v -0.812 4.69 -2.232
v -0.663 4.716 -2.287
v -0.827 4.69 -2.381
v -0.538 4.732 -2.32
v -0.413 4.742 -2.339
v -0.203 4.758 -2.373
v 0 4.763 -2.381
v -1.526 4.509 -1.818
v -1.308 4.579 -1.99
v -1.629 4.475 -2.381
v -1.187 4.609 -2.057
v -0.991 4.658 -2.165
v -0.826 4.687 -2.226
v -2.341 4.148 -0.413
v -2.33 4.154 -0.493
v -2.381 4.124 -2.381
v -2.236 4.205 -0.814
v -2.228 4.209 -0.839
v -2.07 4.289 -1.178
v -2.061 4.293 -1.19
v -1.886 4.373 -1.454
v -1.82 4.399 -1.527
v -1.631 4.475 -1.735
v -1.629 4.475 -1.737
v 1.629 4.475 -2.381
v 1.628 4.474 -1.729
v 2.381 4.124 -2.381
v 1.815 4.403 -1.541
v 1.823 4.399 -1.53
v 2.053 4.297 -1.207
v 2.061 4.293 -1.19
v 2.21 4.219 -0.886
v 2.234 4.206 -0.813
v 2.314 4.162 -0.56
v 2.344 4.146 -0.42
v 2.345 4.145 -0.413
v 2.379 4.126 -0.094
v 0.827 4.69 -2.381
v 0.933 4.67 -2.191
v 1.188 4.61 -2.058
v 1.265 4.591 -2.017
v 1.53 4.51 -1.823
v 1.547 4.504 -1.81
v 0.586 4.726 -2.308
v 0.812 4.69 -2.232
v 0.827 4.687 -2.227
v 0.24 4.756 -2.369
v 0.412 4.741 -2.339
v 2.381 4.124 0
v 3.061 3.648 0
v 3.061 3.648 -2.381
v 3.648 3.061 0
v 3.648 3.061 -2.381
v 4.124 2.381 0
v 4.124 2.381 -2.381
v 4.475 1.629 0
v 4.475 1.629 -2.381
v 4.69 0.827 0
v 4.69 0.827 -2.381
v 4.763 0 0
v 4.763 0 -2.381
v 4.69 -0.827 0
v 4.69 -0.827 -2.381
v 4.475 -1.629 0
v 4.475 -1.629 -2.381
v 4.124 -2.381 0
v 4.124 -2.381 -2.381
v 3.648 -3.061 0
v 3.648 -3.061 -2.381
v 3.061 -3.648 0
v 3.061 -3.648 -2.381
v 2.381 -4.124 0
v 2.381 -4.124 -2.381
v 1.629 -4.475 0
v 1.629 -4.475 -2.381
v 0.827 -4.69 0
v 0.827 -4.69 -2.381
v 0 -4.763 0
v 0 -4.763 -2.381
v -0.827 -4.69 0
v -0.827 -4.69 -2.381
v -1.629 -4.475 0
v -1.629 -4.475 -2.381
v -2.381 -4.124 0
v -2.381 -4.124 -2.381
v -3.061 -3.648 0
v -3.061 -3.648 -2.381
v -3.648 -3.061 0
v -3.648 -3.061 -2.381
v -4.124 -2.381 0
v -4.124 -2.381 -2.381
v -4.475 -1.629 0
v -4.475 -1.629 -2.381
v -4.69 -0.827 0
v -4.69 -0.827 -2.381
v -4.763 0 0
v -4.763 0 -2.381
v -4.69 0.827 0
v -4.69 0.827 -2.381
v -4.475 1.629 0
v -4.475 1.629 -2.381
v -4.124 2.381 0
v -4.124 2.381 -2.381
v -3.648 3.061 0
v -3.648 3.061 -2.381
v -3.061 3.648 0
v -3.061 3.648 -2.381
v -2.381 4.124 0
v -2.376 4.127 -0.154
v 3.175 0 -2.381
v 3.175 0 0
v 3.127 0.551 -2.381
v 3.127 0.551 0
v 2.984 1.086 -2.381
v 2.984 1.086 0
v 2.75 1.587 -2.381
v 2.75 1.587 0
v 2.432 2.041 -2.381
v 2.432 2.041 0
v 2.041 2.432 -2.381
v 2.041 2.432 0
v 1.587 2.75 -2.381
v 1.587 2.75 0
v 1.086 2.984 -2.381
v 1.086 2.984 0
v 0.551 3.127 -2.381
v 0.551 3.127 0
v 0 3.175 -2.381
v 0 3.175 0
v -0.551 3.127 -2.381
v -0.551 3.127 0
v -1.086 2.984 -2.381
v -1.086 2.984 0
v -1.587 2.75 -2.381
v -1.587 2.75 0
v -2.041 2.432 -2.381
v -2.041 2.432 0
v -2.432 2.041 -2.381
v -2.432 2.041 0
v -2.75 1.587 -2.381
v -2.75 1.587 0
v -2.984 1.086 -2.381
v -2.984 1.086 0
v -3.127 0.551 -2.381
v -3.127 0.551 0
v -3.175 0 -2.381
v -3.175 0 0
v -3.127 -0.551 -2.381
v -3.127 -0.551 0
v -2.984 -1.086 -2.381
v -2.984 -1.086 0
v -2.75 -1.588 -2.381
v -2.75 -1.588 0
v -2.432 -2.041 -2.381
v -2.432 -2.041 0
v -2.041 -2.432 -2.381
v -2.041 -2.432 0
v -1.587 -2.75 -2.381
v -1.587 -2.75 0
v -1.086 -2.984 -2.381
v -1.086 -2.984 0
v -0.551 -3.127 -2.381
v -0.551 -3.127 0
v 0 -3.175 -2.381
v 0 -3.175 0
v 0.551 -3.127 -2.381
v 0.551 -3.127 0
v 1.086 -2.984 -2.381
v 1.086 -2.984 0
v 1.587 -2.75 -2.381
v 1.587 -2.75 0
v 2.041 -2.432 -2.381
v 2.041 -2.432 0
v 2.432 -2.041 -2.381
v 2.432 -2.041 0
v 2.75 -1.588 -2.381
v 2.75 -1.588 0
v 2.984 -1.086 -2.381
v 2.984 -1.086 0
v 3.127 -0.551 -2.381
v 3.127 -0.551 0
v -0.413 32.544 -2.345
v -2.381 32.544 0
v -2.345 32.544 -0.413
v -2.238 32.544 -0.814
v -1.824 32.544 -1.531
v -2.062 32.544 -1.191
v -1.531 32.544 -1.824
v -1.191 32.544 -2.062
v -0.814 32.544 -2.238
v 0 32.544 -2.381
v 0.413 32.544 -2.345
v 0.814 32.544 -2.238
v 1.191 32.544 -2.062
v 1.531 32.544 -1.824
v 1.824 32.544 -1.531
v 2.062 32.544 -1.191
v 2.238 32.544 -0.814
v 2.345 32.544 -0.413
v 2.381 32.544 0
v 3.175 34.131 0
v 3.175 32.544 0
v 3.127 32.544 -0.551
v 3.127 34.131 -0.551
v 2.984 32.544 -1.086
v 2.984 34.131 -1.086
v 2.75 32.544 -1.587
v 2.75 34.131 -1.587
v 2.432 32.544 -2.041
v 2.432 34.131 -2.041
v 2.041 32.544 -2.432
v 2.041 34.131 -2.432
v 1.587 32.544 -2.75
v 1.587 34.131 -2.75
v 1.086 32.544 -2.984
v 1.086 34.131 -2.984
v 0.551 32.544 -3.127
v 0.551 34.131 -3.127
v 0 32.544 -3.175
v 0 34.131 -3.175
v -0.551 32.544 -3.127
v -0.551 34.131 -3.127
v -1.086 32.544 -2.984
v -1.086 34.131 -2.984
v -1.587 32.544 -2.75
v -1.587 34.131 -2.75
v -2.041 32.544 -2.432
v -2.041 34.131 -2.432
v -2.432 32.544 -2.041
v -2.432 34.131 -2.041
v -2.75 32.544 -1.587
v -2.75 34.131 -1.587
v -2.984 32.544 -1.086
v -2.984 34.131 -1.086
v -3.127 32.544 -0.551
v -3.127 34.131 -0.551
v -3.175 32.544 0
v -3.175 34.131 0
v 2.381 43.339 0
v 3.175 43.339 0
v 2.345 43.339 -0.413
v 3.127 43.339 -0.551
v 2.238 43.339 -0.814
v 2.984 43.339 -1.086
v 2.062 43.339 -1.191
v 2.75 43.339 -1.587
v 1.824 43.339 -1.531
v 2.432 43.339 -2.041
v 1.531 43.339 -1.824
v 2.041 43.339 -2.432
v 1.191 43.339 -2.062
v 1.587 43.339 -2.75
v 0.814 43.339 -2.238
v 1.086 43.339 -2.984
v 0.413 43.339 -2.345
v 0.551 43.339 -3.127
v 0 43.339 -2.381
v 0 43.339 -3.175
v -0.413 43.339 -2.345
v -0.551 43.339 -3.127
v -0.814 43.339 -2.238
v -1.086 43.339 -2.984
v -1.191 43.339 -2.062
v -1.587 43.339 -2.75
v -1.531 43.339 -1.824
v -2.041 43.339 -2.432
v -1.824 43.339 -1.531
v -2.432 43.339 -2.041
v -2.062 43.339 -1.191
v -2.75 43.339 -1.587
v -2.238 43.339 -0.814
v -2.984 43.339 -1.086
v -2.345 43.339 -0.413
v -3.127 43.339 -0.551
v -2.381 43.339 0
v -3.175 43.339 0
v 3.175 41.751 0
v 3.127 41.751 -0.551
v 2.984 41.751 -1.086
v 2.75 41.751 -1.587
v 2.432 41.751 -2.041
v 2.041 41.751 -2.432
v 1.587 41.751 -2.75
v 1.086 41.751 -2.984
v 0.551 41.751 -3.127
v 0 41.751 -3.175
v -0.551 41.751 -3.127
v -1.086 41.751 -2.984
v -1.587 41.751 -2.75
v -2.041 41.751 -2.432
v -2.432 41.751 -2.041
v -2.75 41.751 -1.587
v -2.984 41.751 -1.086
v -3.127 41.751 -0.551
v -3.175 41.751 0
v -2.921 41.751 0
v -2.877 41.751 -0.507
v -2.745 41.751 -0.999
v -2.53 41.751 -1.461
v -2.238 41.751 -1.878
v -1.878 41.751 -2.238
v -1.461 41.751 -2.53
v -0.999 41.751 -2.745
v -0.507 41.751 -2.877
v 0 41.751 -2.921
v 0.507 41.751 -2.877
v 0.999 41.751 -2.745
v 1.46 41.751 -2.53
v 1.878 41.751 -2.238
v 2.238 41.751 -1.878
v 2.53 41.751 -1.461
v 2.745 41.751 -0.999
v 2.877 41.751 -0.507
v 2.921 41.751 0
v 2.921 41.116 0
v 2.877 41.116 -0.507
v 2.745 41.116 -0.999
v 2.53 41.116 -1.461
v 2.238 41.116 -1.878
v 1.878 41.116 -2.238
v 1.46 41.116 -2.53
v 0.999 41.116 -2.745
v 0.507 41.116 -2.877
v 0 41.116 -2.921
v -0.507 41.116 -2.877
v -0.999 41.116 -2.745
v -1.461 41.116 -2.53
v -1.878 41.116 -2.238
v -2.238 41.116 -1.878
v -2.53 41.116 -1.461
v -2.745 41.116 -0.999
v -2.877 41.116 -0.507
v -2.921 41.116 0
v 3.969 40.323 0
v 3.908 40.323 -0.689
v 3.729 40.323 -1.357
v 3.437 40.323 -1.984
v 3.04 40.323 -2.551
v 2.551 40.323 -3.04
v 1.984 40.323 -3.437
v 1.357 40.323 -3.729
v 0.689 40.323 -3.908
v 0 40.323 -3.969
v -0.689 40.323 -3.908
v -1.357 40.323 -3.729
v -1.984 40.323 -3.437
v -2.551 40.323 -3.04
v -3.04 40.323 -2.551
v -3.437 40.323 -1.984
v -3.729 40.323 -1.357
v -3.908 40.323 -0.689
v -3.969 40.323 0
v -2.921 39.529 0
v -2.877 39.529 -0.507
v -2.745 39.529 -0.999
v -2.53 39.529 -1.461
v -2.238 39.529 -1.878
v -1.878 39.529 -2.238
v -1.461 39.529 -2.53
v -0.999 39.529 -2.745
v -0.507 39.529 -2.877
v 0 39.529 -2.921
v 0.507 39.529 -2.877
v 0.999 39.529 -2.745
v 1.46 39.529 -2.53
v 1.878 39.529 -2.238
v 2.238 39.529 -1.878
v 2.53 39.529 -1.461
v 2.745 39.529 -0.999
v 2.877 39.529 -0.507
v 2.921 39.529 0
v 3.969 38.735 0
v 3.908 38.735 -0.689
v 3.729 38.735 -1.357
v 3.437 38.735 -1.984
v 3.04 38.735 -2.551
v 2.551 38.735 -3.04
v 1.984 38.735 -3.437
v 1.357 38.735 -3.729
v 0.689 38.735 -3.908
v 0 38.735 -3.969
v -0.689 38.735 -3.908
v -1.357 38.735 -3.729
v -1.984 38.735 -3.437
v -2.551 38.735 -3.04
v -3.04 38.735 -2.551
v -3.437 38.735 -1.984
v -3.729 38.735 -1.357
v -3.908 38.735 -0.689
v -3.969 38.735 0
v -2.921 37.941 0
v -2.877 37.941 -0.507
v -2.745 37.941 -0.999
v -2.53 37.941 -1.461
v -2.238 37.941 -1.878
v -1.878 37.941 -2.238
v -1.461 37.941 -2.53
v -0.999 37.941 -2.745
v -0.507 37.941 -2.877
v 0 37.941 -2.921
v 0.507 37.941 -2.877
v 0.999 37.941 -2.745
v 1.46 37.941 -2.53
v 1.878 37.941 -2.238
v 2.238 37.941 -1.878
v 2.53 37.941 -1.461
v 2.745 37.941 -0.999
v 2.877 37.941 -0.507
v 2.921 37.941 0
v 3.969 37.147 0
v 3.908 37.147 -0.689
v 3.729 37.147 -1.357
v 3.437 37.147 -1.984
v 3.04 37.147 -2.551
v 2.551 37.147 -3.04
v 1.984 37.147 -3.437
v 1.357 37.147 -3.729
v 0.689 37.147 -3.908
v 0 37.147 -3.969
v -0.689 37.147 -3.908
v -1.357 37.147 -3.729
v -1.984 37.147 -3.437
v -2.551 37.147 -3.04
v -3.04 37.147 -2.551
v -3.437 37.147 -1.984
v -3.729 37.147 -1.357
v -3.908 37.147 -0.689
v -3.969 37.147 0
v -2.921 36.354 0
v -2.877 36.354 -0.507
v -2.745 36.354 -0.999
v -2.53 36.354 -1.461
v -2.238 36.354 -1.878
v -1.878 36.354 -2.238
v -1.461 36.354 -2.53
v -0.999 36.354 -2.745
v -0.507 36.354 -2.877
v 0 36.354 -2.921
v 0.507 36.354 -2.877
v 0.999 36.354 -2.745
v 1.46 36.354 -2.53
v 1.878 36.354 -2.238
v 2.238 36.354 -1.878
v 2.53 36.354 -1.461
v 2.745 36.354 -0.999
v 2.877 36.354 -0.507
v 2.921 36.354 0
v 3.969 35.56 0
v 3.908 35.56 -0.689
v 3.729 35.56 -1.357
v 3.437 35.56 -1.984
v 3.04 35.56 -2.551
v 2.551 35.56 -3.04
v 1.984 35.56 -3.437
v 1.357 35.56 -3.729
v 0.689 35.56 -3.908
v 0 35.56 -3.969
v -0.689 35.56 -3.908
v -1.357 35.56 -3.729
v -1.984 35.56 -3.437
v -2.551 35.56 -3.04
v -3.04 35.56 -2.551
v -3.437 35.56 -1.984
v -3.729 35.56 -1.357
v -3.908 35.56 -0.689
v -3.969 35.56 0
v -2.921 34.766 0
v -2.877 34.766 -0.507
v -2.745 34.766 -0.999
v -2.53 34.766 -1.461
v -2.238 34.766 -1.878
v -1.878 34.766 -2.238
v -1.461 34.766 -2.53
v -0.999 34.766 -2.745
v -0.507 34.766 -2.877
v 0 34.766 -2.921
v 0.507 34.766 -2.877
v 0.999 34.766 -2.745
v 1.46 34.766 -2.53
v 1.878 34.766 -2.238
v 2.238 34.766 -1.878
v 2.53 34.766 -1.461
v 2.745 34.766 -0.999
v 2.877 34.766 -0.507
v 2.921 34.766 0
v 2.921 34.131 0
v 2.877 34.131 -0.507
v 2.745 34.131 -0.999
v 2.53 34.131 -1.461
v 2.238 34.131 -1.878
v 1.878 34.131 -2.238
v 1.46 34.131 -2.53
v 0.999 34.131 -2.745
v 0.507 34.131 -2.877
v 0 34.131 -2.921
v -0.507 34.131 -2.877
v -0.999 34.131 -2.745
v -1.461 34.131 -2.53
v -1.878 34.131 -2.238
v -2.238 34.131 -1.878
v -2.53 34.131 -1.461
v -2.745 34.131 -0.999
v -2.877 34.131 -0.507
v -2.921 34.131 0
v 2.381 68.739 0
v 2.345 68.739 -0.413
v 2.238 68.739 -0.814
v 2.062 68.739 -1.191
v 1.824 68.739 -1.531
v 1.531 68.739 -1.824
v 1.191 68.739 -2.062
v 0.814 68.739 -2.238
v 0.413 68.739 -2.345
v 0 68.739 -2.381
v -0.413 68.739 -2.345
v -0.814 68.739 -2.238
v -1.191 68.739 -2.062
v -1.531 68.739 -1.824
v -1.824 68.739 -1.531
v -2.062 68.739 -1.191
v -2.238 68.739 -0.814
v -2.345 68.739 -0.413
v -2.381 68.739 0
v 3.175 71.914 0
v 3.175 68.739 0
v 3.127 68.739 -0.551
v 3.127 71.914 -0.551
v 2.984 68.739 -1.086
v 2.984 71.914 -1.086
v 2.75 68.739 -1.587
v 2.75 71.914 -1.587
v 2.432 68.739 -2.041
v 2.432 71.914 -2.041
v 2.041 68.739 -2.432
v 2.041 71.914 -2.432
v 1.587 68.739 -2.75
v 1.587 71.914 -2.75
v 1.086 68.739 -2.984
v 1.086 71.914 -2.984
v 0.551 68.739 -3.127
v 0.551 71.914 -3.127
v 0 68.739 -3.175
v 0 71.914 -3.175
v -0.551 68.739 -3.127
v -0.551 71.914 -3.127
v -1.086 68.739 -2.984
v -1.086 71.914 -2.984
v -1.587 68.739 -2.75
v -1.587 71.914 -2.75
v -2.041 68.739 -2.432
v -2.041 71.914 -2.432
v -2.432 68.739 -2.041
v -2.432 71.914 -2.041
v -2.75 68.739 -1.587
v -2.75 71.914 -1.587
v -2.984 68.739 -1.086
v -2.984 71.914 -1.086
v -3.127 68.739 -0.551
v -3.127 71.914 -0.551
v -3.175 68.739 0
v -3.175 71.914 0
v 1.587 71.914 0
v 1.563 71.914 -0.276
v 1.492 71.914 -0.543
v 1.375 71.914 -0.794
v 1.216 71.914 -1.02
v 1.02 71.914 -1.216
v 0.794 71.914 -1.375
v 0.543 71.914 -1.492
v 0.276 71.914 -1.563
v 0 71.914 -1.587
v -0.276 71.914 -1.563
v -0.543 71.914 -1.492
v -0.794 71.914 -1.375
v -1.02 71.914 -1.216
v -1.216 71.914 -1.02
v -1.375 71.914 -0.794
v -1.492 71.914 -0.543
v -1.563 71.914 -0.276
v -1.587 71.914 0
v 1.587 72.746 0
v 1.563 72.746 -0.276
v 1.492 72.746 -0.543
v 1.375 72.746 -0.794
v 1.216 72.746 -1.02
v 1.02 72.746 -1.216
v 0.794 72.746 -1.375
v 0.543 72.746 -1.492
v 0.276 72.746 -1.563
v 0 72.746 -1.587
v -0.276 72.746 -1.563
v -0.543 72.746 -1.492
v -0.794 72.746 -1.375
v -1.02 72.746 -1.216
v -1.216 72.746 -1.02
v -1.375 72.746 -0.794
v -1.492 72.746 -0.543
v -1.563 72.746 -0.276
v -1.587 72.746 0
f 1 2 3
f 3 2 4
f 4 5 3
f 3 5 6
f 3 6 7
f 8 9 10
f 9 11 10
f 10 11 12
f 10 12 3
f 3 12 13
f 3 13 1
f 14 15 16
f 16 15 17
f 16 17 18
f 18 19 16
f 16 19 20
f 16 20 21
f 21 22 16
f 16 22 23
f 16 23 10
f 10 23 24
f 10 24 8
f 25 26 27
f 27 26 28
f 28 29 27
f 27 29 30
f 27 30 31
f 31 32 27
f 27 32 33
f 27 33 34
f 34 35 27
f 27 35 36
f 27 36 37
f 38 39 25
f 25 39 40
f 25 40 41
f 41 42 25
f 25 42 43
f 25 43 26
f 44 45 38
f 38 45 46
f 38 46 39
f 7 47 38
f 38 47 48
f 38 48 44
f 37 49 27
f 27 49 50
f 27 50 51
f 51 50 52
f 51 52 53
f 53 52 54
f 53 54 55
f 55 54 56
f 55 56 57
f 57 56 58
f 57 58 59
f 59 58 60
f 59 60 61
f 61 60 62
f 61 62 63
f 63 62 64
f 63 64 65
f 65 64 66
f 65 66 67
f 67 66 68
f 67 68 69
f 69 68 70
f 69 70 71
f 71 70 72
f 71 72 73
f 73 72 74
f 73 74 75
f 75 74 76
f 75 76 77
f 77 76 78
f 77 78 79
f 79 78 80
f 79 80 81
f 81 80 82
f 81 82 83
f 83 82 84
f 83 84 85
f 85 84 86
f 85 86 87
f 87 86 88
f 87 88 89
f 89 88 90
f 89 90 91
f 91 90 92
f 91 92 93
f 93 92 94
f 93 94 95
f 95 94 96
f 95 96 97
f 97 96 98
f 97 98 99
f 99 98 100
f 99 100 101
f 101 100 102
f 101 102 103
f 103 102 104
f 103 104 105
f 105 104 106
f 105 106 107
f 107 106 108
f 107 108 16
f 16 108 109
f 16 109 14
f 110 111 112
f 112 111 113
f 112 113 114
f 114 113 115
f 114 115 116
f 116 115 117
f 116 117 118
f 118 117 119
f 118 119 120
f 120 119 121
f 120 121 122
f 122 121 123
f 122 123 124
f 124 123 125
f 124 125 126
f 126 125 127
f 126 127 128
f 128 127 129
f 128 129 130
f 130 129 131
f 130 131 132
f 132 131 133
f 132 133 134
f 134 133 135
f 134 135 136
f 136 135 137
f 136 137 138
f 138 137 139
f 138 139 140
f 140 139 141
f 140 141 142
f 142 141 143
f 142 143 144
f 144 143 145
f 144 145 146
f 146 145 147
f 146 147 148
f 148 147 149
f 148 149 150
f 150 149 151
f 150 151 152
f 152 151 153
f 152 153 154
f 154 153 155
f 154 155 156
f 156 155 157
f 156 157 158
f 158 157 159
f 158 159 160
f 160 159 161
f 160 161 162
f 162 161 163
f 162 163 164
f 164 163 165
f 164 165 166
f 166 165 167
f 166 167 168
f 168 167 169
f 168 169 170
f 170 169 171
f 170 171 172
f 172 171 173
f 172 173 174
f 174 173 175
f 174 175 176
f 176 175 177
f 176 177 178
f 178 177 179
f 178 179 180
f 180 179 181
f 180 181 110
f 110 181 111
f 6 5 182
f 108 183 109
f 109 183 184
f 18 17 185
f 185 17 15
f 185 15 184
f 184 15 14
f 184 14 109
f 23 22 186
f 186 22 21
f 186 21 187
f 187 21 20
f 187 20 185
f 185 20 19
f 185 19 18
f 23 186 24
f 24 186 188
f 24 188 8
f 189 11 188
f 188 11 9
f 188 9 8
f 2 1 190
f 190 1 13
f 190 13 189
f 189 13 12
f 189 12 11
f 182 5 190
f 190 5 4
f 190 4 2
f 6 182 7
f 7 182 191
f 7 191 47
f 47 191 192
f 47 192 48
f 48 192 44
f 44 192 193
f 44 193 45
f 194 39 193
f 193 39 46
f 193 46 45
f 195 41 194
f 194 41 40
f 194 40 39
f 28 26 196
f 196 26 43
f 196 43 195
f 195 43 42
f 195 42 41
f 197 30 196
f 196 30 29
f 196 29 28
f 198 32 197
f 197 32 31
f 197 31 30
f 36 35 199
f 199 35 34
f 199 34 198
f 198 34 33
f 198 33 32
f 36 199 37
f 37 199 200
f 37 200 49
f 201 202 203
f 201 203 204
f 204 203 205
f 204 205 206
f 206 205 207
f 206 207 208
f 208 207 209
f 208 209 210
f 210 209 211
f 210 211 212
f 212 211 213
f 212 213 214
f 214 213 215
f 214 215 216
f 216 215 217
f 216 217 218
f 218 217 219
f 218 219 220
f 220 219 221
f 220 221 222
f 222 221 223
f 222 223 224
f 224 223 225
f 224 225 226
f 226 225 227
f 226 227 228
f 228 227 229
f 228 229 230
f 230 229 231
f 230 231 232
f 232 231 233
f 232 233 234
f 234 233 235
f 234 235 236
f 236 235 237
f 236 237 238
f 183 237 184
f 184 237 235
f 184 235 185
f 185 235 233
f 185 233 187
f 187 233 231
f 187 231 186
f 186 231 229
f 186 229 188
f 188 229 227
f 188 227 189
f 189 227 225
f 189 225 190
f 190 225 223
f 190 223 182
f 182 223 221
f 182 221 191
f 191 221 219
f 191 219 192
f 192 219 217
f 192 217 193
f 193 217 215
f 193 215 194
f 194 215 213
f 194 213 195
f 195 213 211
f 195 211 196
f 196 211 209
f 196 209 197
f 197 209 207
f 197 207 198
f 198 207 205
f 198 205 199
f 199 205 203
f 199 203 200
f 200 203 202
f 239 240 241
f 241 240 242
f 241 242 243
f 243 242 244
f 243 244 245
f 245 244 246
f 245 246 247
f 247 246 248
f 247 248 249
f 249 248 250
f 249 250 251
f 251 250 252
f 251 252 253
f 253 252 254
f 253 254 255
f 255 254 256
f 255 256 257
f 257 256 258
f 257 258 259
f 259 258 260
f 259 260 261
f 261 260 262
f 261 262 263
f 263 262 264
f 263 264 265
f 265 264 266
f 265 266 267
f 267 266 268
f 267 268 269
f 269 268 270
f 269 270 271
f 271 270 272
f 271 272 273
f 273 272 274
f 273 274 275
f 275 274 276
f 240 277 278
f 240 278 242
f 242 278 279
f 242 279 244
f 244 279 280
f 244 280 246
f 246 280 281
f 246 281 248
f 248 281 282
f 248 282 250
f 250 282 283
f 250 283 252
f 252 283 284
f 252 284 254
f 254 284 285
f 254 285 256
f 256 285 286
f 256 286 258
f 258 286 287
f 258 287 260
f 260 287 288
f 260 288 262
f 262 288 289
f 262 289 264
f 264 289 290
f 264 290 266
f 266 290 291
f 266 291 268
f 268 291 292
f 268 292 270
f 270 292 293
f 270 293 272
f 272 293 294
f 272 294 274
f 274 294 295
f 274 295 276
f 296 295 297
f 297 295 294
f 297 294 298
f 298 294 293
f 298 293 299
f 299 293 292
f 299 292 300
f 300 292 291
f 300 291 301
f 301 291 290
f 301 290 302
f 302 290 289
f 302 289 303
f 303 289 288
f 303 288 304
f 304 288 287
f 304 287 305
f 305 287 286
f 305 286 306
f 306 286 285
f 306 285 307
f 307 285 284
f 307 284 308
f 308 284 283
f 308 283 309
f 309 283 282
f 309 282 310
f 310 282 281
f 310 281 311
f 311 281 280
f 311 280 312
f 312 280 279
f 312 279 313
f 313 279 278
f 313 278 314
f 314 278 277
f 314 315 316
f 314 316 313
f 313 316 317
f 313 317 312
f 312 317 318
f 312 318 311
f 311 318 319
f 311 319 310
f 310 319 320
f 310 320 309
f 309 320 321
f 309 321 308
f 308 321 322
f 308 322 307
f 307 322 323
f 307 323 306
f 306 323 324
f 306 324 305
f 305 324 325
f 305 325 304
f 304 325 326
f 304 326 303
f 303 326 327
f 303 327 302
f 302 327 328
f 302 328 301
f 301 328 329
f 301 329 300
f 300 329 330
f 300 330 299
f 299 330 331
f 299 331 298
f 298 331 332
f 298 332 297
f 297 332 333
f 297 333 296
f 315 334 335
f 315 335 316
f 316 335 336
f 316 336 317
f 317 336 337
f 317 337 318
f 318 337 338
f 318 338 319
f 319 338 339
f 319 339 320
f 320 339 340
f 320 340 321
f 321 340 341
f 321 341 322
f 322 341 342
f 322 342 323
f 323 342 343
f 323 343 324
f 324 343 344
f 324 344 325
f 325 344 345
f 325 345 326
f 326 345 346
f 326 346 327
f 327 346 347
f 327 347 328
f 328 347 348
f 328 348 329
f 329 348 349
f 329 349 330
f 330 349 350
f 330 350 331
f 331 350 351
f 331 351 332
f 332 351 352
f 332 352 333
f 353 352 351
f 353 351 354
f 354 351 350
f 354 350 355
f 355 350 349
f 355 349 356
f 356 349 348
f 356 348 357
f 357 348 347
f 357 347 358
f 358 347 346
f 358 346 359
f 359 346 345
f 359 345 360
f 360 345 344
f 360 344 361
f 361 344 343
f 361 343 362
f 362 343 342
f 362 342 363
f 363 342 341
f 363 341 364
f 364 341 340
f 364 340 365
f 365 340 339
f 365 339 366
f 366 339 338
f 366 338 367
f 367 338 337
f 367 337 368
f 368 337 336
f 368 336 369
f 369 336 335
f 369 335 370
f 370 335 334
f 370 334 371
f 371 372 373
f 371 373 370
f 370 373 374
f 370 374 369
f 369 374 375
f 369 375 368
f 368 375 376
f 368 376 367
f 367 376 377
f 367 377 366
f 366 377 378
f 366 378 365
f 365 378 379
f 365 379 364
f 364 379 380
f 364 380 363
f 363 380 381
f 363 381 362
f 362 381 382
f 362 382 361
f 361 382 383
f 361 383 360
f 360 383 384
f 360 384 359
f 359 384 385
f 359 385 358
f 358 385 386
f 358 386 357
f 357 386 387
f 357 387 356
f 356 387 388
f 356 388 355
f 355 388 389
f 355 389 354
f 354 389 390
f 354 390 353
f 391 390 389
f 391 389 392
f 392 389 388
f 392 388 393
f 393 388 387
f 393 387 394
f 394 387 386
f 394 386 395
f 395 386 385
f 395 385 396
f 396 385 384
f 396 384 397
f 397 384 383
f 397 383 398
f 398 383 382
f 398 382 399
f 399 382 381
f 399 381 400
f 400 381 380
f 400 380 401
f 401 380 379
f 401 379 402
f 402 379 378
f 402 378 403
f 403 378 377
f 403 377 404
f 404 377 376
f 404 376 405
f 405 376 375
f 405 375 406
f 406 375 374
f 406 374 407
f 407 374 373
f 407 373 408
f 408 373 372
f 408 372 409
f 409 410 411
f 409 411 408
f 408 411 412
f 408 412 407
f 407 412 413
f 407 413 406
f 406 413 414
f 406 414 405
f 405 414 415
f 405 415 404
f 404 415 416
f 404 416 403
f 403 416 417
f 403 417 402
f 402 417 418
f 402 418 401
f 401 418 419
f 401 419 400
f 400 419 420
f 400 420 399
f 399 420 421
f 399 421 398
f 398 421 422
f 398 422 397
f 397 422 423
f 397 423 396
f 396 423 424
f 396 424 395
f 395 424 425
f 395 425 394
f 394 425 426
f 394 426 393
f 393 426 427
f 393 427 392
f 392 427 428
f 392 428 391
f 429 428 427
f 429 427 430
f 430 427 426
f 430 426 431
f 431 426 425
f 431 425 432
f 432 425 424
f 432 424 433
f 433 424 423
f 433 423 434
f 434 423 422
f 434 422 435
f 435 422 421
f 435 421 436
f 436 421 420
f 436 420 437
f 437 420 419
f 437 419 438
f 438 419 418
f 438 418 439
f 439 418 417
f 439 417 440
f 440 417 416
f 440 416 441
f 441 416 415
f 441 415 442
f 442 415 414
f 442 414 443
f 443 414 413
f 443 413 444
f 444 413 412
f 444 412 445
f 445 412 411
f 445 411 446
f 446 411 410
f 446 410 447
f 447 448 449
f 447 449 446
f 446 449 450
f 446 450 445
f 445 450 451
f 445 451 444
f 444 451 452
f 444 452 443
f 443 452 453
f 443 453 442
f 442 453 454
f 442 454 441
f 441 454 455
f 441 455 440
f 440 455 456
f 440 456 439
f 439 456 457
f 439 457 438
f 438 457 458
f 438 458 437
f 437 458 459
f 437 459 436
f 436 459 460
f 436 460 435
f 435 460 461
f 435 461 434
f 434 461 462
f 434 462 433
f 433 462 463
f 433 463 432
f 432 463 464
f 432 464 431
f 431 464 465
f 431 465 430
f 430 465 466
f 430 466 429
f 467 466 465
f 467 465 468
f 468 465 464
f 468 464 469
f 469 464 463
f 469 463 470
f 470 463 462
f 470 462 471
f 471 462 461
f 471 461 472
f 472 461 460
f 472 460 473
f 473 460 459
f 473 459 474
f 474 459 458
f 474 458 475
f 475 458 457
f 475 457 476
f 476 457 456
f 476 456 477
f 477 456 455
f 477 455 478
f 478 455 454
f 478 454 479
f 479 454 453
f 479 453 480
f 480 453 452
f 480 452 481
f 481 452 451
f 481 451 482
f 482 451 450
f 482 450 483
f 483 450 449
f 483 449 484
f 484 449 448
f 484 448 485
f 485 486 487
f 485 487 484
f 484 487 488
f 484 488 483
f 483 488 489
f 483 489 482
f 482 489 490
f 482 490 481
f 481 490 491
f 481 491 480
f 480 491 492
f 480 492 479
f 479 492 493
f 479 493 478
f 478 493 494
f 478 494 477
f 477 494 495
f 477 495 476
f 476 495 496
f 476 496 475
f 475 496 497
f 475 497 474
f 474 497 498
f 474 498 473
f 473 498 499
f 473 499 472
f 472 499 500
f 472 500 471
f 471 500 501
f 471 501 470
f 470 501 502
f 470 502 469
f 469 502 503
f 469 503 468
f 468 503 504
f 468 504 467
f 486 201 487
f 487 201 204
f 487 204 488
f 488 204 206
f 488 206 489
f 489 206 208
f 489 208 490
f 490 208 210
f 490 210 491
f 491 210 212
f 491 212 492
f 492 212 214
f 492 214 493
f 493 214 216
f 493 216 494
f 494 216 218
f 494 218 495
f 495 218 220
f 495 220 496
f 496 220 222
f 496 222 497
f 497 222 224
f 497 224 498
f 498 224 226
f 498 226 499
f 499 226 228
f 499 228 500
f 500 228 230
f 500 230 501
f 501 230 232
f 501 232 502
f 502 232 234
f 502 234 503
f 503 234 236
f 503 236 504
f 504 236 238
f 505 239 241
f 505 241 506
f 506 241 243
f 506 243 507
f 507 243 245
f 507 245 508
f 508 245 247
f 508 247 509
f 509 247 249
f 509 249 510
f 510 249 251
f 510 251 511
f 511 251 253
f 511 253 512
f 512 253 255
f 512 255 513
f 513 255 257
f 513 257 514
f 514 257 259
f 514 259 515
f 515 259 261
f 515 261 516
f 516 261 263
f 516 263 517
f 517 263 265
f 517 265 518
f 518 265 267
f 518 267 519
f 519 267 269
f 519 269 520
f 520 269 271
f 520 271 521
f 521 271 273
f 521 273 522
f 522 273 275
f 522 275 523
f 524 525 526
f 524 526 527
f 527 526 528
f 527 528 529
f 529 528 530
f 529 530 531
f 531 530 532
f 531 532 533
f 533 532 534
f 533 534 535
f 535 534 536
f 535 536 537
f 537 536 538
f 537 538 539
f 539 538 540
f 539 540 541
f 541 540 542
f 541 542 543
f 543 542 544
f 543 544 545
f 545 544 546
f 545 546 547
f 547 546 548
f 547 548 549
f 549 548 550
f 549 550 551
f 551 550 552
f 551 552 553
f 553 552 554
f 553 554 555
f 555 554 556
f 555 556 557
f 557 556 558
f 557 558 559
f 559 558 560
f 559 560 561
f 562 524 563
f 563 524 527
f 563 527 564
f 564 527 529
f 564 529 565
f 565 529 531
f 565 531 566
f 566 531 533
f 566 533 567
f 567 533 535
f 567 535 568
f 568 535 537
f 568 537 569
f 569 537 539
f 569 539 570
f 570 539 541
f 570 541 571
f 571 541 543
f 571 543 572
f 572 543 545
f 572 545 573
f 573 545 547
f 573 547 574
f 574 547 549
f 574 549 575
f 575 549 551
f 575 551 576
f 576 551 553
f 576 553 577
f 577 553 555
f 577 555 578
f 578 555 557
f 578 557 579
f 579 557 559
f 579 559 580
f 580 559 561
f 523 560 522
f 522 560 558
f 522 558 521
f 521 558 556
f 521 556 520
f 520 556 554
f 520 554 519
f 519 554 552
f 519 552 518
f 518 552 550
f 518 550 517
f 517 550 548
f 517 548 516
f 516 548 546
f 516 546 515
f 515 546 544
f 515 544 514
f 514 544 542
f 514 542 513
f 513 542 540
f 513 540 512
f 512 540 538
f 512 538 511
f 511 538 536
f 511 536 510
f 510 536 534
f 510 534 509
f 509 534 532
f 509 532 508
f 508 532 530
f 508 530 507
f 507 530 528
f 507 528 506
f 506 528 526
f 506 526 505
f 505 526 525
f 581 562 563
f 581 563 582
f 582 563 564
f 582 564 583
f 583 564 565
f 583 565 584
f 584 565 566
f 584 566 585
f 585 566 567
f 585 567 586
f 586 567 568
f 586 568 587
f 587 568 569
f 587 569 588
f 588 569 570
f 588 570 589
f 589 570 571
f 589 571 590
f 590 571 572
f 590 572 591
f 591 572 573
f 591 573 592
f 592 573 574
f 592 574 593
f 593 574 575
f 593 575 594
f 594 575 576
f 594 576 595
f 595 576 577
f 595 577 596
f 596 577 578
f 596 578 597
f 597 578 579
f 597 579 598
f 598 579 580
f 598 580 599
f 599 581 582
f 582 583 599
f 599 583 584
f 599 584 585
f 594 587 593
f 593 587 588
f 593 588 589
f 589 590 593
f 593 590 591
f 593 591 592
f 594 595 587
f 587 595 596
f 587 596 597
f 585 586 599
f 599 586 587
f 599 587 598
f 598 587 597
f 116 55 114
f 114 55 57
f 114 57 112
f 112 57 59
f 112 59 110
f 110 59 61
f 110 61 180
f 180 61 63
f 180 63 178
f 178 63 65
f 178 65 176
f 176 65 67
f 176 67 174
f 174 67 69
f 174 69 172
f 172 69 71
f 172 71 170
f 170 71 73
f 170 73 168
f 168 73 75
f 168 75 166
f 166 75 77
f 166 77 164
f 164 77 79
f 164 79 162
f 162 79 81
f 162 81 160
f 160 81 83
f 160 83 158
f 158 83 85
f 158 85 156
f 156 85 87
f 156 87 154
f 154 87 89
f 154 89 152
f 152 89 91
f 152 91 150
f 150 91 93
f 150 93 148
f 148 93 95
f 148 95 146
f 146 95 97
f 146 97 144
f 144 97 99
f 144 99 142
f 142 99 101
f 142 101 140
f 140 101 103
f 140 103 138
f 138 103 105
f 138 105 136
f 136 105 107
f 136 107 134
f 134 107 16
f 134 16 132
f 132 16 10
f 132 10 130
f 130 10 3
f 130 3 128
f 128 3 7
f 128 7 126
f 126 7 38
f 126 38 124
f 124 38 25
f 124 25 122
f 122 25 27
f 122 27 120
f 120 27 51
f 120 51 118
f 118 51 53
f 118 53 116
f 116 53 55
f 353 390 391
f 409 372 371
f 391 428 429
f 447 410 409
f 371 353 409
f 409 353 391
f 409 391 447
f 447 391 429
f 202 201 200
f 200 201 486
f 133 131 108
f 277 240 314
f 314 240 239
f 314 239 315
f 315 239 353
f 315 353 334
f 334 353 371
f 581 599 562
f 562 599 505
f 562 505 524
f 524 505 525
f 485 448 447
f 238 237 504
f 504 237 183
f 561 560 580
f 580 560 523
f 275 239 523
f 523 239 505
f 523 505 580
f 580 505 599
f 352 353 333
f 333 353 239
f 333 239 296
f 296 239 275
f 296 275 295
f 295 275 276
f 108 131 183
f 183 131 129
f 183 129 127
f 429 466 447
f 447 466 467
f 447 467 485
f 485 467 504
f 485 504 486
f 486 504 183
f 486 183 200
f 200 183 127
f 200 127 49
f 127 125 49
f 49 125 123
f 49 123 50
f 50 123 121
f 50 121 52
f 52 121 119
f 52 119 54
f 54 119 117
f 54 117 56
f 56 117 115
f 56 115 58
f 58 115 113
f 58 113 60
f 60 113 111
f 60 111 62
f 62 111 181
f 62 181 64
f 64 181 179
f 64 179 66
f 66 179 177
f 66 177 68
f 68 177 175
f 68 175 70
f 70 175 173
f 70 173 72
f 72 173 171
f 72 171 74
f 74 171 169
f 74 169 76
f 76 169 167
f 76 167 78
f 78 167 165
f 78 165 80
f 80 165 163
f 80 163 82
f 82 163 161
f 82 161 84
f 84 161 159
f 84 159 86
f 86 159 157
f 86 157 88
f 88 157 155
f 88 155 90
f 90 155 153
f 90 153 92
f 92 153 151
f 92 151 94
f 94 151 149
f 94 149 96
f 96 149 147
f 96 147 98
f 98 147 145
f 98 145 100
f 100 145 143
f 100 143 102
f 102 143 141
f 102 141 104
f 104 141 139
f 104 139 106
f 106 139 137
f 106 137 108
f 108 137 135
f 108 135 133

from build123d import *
from build123d.topology import SkipClean

# Parameters (mm, degrees)
BOSS_EXTRUDE1_DEPTH                  = 4.7625
BOSS_EXTRUDE1_DEPTH_BACK             = 2.38125
SKETCH1_R                            = 4.7625
SKETCH1_R_2                          = 3.175
SKETCH2_R                            = 2.38125
BOSS_EXTRUDE2_DEPTH                  = 28.575
BOSS_EXTRUDE2_DIRECTION_2_REACH      = 13.666
BOSS_EXTRUDE2_DIRECTION_2_END_RADIUS = 4.7625
BOSS_EXTRUDE3_START                  = 25.4
SKETCH4_R                            = 2.38125
BOSS_EXTRUDE3_DEPTH                  = 25.4
SKETCH5_R                            = 3.175
BOSS_EXTRUDE4_DEPTH                  = 3.175
SKETCH6_R                            = 1.5875
BOSS_EXTRUDE5_DEPTH                  = 0.83185
SKETCH7_W                            = 15.534712676
SKETCH7_H                            = 81.822586025
CUT_EXTRUDE1_DEPTH                   = 74.056725452


with BuildPart() as part:
    # Sketch1 → Boss-Extrude1 (new, two sides: drawn at the far end of the back side and taken through both)
    with BuildSketch(Plane.XY.offset(-BOSS_EXTRUDE1_DEPTH_BACK)):
        Circle(SKETCH1_R)
        Circle(SKETCH1_R_2, mode=Mode.SUBTRACT)
    extrude(amount=BOSS_EXTRUDE1_DEPTH + BOSS_EXTRUDE1_DEPTH_BACK)

    # Sketch2 → Boss-Extrude2 (add)
    with BuildSketch(Plane(origin=(0, 4.7625, 0), x_dir=(1, 0, 0), z_dir=(0, 1, 0))):
        Circle(SKETCH2_R)
    extrude(amount=BOSS_EXTRUDE2_DEPTH)

    # Boss-Extrude2 direction 2: up to this cylinder (the profile starts outside it)
    boss_extrude2_direction_2_end = Plane(origin=(0, 0, 0), z_dir=(0, 0, 1)) * Cylinder(BOSS_EXTRUDE2_DIRECTION_2_END_RADIUS, 37.857, mode=Mode.PRIVATE)
    # Sketch2 → Boss-Extrude2 direction 2 (add, up to the surface)
    with BuildSketch(Plane(origin=(0, 4.7625, 0), x_dir=(1, 0, 0), z_dir=(0, 1, 0)), mode=Mode.PRIVATE) as boss_extrude2_direction_2_sk1:
        Circle(SKETCH2_R)
    boss_extrude2_direction_2_tool1 = extrude(boss_extrude2_direction_2_sk1.sketch, amount=-BOSS_EXTRUDE2_DIRECTION_2_REACH, mode=Mode.PRIVATE) - boss_extrude2_direction_2_end
    add(boss_extrude2_direction_2_tool1.solids().sort_by_distance((0, 4.7625, 0))[0])
    add(boss_extrude2_direction_2_tool1.solids().sort_by_distance((0, 4.7625, 0))[1])

    # Sketch3 → Revolve1 (revolve)
    with SkipClean():  # the faces are left unmerged after this step: merging them gives an invalid solid
        with BuildSketch(Plane(origin=(0, 0, 0), x_dir=(0, 0, -1), z_dir=(1, 0, 0))):
            Polygon((-2.921, 34.76625), (-2.921, 34.13125), (-3.175, 34.13125), (-3.175, 32.54375), (0, 32.54375), (0, 43.33875), (-3.175, 43.33875), (-3.175, 41.75125), (-2.921, 41.75125), (-2.921, 41.11625), (-3.96875, 40.3225), (-2.921, 39.52875), (-3.96875, 38.735), (-2.921, 37.94125), (-3.96875, 37.1475), (-2.921, 36.35375), (-3.96875, 35.56), align=None)
        revolve(axis=Axis((0, 32.54375, 0), (0, 1, 0)))

    # Sketch4 → Boss-Extrude3 (add)
    with SkipClean():  # the faces are left unmerged after this step: merging them gives an invalid solid
        with BuildSketch(Plane(origin=(0, 43.33875, 0), x_dir=(1, 0, 0), z_dir=(0, 1, 0)).offset(BOSS_EXTRUDE3_START)):
            Circle(SKETCH4_R)
        extrude(amount=-BOSS_EXTRUDE3_DEPTH)

    # Sketch5 → Boss-Extrude4 (add)
    with SkipClean():  # the faces are left unmerged after this step: merging them gives an invalid solid
        with BuildSketch(Plane(origin=(0, 68.73875, 0), x_dir=(1, 0, 0), z_dir=(0, 1, 0))):
            Circle(SKETCH5_R)
        extrude(amount=BOSS_EXTRUDE4_DEPTH)

    # Sketch6 → Boss-Extrude5 (add)
    with SkipClean():  # the faces are left unmerged after this step: merging them gives an invalid solid
        with BuildSketch(Plane(origin=(0, 71.91375, 0), x_dir=(1, 0, 0), z_dir=(0, 1, 0))):
            Circle(SKETCH6_R)
        extrude(amount=BOSS_EXTRUDE5_DEPTH)

    # Sketch7 → Cut-Extrude1 (cut, through all)
    with SkipClean():  # the faces are left unmerged after this step: merging them gives an invalid solid
        with BuildSketch(Plane.XY):
            with Locations((0.627177841, 34.425750044)):
                Rectangle(SKETCH7_W, SKETCH7_H)
        extrude(amount=CUT_EXTRUDE1_DEPTH, mode=Mode.SUBTRACT)


solid = part.part
